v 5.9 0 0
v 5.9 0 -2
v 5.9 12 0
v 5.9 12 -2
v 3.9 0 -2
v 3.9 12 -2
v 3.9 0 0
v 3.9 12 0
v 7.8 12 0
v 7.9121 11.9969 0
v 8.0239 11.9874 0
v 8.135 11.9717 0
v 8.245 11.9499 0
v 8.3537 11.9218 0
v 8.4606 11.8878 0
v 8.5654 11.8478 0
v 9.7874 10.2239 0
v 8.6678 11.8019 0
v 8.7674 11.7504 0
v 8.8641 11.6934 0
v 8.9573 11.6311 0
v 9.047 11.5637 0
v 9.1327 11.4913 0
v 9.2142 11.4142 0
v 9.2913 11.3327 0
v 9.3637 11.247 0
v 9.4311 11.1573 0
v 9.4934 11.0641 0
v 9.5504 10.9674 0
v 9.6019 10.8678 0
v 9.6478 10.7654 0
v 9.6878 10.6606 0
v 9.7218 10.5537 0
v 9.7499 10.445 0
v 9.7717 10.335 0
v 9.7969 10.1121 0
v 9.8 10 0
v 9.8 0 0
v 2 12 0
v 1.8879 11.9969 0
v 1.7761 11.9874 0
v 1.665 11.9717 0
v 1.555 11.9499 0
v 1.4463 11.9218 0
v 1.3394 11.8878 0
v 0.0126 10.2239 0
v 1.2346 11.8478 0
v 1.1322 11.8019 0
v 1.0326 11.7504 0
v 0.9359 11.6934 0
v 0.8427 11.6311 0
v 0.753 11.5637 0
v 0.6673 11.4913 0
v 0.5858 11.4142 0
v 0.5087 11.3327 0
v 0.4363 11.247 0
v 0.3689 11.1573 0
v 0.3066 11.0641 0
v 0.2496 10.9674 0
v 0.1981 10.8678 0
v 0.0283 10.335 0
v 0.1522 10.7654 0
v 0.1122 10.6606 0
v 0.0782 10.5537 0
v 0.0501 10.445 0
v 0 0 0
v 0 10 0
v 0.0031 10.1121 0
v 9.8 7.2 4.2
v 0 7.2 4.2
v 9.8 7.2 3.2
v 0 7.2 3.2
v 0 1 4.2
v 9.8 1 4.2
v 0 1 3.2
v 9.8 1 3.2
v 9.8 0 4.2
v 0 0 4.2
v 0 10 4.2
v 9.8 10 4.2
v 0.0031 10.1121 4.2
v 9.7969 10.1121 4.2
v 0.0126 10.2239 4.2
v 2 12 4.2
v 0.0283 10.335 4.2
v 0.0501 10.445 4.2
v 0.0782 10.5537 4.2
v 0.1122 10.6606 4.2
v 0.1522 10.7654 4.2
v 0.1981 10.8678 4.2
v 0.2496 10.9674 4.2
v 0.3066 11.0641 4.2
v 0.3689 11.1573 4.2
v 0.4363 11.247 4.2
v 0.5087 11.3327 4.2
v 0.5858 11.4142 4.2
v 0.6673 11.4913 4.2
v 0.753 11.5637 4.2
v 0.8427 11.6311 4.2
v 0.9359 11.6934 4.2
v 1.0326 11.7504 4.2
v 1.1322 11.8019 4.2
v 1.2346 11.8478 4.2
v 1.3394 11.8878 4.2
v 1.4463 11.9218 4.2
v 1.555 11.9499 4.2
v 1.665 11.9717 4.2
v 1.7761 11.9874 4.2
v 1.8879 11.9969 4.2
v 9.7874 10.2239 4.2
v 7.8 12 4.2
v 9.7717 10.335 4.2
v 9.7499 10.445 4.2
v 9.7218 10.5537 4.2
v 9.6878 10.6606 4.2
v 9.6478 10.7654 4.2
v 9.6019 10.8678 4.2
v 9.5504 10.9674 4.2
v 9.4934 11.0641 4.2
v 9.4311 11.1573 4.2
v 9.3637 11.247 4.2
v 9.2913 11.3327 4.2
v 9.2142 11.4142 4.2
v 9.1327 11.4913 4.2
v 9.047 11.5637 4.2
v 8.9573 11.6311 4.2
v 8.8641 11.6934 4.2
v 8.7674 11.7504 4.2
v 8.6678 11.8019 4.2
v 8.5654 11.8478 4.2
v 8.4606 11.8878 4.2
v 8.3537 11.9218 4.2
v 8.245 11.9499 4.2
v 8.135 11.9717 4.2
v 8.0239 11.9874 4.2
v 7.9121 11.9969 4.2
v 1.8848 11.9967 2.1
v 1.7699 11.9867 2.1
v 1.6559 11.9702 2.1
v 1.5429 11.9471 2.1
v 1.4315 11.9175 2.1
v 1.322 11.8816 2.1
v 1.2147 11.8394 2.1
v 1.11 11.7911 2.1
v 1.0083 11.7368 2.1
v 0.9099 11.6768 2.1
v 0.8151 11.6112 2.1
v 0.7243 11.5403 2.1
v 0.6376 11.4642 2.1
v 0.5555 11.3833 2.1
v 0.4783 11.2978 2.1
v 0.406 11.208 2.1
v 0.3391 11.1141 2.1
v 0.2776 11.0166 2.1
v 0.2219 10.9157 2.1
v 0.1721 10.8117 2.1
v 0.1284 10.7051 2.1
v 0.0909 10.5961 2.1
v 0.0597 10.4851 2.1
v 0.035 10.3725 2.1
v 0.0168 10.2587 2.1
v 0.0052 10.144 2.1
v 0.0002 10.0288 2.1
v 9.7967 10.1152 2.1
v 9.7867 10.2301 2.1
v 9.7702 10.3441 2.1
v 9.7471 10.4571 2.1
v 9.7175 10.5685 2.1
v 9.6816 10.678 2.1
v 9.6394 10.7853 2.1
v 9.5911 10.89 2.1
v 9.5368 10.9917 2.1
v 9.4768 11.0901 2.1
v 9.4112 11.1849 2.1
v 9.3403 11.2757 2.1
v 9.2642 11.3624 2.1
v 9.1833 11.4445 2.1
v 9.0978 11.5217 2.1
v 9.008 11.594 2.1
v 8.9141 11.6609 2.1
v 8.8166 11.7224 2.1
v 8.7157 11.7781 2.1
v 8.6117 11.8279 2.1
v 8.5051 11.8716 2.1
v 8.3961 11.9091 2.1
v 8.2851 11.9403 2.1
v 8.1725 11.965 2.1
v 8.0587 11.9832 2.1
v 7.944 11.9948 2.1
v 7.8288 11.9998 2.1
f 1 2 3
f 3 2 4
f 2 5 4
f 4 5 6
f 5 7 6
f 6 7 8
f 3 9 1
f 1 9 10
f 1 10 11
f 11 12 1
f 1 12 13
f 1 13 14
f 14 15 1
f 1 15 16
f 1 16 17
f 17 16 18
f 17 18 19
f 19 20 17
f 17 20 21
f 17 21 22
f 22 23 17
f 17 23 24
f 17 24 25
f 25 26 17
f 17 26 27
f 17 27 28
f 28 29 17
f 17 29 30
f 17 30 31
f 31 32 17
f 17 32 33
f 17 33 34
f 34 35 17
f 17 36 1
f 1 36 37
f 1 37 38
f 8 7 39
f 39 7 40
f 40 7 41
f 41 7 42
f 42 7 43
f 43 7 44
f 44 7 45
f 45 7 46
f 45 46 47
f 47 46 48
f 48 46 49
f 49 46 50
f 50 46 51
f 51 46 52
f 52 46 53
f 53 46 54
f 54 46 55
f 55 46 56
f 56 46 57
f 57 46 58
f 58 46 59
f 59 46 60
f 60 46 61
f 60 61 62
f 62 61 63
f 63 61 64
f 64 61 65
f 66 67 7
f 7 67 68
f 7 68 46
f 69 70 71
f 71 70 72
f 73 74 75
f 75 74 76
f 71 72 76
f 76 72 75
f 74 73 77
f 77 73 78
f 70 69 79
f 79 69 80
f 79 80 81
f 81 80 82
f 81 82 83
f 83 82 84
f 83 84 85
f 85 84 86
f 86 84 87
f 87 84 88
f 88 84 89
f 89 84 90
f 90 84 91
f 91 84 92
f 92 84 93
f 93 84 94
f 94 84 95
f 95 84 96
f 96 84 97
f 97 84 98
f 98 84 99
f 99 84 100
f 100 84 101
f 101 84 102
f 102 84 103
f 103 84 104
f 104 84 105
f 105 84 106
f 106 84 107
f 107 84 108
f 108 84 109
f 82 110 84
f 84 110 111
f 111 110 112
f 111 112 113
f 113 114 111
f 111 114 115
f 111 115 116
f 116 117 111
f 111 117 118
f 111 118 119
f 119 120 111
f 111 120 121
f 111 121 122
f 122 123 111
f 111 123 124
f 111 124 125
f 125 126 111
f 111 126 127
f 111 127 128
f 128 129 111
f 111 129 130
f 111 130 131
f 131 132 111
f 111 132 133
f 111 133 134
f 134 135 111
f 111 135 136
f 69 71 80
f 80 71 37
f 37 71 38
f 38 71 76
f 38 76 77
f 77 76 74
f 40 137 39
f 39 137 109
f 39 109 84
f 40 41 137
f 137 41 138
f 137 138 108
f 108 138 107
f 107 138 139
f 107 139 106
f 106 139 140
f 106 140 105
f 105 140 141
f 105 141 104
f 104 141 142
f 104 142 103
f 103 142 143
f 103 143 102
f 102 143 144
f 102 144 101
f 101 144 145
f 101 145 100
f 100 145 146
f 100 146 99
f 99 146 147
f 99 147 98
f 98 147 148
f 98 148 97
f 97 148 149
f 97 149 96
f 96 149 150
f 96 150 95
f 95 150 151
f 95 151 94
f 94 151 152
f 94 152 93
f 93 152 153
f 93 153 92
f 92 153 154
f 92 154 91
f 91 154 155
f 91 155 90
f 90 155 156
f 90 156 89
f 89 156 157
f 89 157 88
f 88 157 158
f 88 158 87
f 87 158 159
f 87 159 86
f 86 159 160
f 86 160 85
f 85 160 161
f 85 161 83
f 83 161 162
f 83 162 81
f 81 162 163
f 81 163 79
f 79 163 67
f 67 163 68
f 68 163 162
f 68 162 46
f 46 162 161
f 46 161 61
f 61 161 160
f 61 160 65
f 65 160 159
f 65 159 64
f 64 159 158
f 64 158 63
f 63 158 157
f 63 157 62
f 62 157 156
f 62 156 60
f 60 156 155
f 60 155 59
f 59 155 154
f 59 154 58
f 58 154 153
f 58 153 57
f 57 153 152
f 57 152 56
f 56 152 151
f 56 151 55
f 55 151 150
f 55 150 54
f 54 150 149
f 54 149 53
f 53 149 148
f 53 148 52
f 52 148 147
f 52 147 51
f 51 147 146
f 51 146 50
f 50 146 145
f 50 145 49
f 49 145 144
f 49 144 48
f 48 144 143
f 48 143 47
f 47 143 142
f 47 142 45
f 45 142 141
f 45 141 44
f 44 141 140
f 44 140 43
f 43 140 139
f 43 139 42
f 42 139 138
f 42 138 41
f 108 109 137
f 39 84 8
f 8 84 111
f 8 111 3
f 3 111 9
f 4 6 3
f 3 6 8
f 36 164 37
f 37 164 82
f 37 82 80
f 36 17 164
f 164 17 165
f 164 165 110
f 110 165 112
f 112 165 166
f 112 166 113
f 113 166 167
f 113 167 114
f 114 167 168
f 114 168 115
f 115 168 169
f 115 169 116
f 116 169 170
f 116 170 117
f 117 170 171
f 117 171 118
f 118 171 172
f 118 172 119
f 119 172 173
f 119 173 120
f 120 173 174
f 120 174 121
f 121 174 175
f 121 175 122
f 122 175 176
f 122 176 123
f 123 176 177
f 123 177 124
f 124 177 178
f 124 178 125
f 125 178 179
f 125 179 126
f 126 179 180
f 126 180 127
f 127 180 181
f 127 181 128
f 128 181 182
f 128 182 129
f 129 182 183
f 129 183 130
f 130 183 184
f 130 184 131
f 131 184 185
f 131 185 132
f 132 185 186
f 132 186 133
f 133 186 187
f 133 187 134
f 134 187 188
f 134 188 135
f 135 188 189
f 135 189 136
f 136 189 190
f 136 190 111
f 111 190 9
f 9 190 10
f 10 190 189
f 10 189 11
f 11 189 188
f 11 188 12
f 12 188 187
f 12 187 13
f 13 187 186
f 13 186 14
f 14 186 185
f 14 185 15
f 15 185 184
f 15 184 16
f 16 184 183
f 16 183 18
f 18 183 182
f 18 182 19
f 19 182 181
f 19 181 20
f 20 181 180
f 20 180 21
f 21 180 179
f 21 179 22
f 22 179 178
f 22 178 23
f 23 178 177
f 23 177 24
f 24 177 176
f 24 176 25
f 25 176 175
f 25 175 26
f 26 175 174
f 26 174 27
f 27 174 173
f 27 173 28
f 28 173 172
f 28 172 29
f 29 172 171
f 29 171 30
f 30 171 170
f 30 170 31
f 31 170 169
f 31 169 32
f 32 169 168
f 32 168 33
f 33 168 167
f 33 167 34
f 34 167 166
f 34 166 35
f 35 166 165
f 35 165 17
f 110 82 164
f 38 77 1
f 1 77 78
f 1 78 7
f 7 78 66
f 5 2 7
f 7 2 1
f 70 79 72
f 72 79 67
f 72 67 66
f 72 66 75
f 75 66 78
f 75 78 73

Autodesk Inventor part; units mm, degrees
ref_plane "YZ Plane" through (0, 0, 0) normal (1, 0, 0) x (0, 1, 0)
ref_plane "XZ Plane" through (0, 0, 0) normal (0, 1, 0) x (-1, 0, 0)
ref_plane "XY Plane" through (0, 0, 0) normal (0, 0, 1) x (1, 0, 0)
sketch "Эскиз1" plane through (0, 0, 0) normal (0, 0, 1) x (1, 0, 0)
  arc A0 (9.8, 10) -> (7.8, 12) centre (7.8, 10) ccw projected
  line L0 (2, 12) -> (7.8, 12) projected
  arc A1 (2, 12) -> (0, 10) centre (2, 10) ccw projected
  line L1 (0, 0) -> (0, 10) projected
  line L2 (9.8, 0) -> (0, 0) projected
  line L3 (9.8, 0) -> (9.8, 10) projected
  line L4 (2.05, 7.1454) -> (4.9, 8.7909) projected
  line L5 (4.9, 8.7909) -> (7.75, 7.1454) projected
  line L6 (7.75, 7.1454) -> (7.75, 3.8546) projected
  line L7 (7.75, 3.8546) -> (4.9, 2.2091) projected
  line L8 (4.9, 2.2091) -> (2.05, 3.8546) projected
  line L9 (2.05, 3.8546) -> (2.05, 7.1454) projected
  circle A2 centre (4.9, 5.5) radius 1.7 projected
  circle A3 centre (4.9, 5.5) radius 1.5
  dimension "d0" = 3
extrude "Выдавливание1" add sketch "Эскиз1" along normal blind 4.2 contours L3 L2 L1 A1 L0 A0 | L4 L5 L6 L7 L8 L9 | A2 | A3
sketch "Эскиз2" plane through (0, 0, 4.2) normal (0, 0, 1) x (1, 0, 0)
  line L0 (0, 10) -> (0, 0) projected
  line L1 (9.8, 0) -> (9.8, 10) projected
  line L2 (0, 7.2) -> (9.8, 7.2)
  line L3 (9.8, 7.2) -> (9.8, 1)
  line L4 (9.8, 1) -> (0, 1)
  line L5 (0, 1) -> (0, 7.2)
  line L6 (0, 0) -> (9.8, 0) projected
  dimension "d3" = 1
  dimension "d4" = 6.2
extrude "Выдавливание2" cut sketch "Эскиз2" against normal blind 1 contours L2 L1 L4 L0
sketch "Эскиз3" plane through (2, 12, 0) normal (0, 1, 0) x (1, 0, 0)
  line L0 (5.8, 0) -> (5.8, -4.2) projected
  line L1 (0, 0) -> (5.8, 0) projected
  line L2 (5.8, 0) -> (0, 0)
  line L3 (2.9, 0) -> (2.9, -1.6661)
  line L4 (3.9, 0) -> (1.9, 0)
  line L5 (1.9, 0) -> (1.9, -1)
  line L6 (1.9, -1) -> (3.9, -1)
  line L7 (3.9, -1) -> (3.9, 0)
  line L8 (3.9, 0) -> (1.9, 0)
  line L9 (1.9, 0) -> (1.9, 2)
  line L10 (1.9, 2) -> (3.9, 2)
  line L11 (3.9, 2) -> (3.9, 0)
  point P0 (-2, 0)
  dimension "d7" = 2
  dimension "d8" = 1
  dimension "d9" = 2
extrude "Выдавливание3" add sketch "Эскиз3" against normal up to surface (12 mm away) contours L9 L10 L11 L1
properties part number "натяжитель ремня"
